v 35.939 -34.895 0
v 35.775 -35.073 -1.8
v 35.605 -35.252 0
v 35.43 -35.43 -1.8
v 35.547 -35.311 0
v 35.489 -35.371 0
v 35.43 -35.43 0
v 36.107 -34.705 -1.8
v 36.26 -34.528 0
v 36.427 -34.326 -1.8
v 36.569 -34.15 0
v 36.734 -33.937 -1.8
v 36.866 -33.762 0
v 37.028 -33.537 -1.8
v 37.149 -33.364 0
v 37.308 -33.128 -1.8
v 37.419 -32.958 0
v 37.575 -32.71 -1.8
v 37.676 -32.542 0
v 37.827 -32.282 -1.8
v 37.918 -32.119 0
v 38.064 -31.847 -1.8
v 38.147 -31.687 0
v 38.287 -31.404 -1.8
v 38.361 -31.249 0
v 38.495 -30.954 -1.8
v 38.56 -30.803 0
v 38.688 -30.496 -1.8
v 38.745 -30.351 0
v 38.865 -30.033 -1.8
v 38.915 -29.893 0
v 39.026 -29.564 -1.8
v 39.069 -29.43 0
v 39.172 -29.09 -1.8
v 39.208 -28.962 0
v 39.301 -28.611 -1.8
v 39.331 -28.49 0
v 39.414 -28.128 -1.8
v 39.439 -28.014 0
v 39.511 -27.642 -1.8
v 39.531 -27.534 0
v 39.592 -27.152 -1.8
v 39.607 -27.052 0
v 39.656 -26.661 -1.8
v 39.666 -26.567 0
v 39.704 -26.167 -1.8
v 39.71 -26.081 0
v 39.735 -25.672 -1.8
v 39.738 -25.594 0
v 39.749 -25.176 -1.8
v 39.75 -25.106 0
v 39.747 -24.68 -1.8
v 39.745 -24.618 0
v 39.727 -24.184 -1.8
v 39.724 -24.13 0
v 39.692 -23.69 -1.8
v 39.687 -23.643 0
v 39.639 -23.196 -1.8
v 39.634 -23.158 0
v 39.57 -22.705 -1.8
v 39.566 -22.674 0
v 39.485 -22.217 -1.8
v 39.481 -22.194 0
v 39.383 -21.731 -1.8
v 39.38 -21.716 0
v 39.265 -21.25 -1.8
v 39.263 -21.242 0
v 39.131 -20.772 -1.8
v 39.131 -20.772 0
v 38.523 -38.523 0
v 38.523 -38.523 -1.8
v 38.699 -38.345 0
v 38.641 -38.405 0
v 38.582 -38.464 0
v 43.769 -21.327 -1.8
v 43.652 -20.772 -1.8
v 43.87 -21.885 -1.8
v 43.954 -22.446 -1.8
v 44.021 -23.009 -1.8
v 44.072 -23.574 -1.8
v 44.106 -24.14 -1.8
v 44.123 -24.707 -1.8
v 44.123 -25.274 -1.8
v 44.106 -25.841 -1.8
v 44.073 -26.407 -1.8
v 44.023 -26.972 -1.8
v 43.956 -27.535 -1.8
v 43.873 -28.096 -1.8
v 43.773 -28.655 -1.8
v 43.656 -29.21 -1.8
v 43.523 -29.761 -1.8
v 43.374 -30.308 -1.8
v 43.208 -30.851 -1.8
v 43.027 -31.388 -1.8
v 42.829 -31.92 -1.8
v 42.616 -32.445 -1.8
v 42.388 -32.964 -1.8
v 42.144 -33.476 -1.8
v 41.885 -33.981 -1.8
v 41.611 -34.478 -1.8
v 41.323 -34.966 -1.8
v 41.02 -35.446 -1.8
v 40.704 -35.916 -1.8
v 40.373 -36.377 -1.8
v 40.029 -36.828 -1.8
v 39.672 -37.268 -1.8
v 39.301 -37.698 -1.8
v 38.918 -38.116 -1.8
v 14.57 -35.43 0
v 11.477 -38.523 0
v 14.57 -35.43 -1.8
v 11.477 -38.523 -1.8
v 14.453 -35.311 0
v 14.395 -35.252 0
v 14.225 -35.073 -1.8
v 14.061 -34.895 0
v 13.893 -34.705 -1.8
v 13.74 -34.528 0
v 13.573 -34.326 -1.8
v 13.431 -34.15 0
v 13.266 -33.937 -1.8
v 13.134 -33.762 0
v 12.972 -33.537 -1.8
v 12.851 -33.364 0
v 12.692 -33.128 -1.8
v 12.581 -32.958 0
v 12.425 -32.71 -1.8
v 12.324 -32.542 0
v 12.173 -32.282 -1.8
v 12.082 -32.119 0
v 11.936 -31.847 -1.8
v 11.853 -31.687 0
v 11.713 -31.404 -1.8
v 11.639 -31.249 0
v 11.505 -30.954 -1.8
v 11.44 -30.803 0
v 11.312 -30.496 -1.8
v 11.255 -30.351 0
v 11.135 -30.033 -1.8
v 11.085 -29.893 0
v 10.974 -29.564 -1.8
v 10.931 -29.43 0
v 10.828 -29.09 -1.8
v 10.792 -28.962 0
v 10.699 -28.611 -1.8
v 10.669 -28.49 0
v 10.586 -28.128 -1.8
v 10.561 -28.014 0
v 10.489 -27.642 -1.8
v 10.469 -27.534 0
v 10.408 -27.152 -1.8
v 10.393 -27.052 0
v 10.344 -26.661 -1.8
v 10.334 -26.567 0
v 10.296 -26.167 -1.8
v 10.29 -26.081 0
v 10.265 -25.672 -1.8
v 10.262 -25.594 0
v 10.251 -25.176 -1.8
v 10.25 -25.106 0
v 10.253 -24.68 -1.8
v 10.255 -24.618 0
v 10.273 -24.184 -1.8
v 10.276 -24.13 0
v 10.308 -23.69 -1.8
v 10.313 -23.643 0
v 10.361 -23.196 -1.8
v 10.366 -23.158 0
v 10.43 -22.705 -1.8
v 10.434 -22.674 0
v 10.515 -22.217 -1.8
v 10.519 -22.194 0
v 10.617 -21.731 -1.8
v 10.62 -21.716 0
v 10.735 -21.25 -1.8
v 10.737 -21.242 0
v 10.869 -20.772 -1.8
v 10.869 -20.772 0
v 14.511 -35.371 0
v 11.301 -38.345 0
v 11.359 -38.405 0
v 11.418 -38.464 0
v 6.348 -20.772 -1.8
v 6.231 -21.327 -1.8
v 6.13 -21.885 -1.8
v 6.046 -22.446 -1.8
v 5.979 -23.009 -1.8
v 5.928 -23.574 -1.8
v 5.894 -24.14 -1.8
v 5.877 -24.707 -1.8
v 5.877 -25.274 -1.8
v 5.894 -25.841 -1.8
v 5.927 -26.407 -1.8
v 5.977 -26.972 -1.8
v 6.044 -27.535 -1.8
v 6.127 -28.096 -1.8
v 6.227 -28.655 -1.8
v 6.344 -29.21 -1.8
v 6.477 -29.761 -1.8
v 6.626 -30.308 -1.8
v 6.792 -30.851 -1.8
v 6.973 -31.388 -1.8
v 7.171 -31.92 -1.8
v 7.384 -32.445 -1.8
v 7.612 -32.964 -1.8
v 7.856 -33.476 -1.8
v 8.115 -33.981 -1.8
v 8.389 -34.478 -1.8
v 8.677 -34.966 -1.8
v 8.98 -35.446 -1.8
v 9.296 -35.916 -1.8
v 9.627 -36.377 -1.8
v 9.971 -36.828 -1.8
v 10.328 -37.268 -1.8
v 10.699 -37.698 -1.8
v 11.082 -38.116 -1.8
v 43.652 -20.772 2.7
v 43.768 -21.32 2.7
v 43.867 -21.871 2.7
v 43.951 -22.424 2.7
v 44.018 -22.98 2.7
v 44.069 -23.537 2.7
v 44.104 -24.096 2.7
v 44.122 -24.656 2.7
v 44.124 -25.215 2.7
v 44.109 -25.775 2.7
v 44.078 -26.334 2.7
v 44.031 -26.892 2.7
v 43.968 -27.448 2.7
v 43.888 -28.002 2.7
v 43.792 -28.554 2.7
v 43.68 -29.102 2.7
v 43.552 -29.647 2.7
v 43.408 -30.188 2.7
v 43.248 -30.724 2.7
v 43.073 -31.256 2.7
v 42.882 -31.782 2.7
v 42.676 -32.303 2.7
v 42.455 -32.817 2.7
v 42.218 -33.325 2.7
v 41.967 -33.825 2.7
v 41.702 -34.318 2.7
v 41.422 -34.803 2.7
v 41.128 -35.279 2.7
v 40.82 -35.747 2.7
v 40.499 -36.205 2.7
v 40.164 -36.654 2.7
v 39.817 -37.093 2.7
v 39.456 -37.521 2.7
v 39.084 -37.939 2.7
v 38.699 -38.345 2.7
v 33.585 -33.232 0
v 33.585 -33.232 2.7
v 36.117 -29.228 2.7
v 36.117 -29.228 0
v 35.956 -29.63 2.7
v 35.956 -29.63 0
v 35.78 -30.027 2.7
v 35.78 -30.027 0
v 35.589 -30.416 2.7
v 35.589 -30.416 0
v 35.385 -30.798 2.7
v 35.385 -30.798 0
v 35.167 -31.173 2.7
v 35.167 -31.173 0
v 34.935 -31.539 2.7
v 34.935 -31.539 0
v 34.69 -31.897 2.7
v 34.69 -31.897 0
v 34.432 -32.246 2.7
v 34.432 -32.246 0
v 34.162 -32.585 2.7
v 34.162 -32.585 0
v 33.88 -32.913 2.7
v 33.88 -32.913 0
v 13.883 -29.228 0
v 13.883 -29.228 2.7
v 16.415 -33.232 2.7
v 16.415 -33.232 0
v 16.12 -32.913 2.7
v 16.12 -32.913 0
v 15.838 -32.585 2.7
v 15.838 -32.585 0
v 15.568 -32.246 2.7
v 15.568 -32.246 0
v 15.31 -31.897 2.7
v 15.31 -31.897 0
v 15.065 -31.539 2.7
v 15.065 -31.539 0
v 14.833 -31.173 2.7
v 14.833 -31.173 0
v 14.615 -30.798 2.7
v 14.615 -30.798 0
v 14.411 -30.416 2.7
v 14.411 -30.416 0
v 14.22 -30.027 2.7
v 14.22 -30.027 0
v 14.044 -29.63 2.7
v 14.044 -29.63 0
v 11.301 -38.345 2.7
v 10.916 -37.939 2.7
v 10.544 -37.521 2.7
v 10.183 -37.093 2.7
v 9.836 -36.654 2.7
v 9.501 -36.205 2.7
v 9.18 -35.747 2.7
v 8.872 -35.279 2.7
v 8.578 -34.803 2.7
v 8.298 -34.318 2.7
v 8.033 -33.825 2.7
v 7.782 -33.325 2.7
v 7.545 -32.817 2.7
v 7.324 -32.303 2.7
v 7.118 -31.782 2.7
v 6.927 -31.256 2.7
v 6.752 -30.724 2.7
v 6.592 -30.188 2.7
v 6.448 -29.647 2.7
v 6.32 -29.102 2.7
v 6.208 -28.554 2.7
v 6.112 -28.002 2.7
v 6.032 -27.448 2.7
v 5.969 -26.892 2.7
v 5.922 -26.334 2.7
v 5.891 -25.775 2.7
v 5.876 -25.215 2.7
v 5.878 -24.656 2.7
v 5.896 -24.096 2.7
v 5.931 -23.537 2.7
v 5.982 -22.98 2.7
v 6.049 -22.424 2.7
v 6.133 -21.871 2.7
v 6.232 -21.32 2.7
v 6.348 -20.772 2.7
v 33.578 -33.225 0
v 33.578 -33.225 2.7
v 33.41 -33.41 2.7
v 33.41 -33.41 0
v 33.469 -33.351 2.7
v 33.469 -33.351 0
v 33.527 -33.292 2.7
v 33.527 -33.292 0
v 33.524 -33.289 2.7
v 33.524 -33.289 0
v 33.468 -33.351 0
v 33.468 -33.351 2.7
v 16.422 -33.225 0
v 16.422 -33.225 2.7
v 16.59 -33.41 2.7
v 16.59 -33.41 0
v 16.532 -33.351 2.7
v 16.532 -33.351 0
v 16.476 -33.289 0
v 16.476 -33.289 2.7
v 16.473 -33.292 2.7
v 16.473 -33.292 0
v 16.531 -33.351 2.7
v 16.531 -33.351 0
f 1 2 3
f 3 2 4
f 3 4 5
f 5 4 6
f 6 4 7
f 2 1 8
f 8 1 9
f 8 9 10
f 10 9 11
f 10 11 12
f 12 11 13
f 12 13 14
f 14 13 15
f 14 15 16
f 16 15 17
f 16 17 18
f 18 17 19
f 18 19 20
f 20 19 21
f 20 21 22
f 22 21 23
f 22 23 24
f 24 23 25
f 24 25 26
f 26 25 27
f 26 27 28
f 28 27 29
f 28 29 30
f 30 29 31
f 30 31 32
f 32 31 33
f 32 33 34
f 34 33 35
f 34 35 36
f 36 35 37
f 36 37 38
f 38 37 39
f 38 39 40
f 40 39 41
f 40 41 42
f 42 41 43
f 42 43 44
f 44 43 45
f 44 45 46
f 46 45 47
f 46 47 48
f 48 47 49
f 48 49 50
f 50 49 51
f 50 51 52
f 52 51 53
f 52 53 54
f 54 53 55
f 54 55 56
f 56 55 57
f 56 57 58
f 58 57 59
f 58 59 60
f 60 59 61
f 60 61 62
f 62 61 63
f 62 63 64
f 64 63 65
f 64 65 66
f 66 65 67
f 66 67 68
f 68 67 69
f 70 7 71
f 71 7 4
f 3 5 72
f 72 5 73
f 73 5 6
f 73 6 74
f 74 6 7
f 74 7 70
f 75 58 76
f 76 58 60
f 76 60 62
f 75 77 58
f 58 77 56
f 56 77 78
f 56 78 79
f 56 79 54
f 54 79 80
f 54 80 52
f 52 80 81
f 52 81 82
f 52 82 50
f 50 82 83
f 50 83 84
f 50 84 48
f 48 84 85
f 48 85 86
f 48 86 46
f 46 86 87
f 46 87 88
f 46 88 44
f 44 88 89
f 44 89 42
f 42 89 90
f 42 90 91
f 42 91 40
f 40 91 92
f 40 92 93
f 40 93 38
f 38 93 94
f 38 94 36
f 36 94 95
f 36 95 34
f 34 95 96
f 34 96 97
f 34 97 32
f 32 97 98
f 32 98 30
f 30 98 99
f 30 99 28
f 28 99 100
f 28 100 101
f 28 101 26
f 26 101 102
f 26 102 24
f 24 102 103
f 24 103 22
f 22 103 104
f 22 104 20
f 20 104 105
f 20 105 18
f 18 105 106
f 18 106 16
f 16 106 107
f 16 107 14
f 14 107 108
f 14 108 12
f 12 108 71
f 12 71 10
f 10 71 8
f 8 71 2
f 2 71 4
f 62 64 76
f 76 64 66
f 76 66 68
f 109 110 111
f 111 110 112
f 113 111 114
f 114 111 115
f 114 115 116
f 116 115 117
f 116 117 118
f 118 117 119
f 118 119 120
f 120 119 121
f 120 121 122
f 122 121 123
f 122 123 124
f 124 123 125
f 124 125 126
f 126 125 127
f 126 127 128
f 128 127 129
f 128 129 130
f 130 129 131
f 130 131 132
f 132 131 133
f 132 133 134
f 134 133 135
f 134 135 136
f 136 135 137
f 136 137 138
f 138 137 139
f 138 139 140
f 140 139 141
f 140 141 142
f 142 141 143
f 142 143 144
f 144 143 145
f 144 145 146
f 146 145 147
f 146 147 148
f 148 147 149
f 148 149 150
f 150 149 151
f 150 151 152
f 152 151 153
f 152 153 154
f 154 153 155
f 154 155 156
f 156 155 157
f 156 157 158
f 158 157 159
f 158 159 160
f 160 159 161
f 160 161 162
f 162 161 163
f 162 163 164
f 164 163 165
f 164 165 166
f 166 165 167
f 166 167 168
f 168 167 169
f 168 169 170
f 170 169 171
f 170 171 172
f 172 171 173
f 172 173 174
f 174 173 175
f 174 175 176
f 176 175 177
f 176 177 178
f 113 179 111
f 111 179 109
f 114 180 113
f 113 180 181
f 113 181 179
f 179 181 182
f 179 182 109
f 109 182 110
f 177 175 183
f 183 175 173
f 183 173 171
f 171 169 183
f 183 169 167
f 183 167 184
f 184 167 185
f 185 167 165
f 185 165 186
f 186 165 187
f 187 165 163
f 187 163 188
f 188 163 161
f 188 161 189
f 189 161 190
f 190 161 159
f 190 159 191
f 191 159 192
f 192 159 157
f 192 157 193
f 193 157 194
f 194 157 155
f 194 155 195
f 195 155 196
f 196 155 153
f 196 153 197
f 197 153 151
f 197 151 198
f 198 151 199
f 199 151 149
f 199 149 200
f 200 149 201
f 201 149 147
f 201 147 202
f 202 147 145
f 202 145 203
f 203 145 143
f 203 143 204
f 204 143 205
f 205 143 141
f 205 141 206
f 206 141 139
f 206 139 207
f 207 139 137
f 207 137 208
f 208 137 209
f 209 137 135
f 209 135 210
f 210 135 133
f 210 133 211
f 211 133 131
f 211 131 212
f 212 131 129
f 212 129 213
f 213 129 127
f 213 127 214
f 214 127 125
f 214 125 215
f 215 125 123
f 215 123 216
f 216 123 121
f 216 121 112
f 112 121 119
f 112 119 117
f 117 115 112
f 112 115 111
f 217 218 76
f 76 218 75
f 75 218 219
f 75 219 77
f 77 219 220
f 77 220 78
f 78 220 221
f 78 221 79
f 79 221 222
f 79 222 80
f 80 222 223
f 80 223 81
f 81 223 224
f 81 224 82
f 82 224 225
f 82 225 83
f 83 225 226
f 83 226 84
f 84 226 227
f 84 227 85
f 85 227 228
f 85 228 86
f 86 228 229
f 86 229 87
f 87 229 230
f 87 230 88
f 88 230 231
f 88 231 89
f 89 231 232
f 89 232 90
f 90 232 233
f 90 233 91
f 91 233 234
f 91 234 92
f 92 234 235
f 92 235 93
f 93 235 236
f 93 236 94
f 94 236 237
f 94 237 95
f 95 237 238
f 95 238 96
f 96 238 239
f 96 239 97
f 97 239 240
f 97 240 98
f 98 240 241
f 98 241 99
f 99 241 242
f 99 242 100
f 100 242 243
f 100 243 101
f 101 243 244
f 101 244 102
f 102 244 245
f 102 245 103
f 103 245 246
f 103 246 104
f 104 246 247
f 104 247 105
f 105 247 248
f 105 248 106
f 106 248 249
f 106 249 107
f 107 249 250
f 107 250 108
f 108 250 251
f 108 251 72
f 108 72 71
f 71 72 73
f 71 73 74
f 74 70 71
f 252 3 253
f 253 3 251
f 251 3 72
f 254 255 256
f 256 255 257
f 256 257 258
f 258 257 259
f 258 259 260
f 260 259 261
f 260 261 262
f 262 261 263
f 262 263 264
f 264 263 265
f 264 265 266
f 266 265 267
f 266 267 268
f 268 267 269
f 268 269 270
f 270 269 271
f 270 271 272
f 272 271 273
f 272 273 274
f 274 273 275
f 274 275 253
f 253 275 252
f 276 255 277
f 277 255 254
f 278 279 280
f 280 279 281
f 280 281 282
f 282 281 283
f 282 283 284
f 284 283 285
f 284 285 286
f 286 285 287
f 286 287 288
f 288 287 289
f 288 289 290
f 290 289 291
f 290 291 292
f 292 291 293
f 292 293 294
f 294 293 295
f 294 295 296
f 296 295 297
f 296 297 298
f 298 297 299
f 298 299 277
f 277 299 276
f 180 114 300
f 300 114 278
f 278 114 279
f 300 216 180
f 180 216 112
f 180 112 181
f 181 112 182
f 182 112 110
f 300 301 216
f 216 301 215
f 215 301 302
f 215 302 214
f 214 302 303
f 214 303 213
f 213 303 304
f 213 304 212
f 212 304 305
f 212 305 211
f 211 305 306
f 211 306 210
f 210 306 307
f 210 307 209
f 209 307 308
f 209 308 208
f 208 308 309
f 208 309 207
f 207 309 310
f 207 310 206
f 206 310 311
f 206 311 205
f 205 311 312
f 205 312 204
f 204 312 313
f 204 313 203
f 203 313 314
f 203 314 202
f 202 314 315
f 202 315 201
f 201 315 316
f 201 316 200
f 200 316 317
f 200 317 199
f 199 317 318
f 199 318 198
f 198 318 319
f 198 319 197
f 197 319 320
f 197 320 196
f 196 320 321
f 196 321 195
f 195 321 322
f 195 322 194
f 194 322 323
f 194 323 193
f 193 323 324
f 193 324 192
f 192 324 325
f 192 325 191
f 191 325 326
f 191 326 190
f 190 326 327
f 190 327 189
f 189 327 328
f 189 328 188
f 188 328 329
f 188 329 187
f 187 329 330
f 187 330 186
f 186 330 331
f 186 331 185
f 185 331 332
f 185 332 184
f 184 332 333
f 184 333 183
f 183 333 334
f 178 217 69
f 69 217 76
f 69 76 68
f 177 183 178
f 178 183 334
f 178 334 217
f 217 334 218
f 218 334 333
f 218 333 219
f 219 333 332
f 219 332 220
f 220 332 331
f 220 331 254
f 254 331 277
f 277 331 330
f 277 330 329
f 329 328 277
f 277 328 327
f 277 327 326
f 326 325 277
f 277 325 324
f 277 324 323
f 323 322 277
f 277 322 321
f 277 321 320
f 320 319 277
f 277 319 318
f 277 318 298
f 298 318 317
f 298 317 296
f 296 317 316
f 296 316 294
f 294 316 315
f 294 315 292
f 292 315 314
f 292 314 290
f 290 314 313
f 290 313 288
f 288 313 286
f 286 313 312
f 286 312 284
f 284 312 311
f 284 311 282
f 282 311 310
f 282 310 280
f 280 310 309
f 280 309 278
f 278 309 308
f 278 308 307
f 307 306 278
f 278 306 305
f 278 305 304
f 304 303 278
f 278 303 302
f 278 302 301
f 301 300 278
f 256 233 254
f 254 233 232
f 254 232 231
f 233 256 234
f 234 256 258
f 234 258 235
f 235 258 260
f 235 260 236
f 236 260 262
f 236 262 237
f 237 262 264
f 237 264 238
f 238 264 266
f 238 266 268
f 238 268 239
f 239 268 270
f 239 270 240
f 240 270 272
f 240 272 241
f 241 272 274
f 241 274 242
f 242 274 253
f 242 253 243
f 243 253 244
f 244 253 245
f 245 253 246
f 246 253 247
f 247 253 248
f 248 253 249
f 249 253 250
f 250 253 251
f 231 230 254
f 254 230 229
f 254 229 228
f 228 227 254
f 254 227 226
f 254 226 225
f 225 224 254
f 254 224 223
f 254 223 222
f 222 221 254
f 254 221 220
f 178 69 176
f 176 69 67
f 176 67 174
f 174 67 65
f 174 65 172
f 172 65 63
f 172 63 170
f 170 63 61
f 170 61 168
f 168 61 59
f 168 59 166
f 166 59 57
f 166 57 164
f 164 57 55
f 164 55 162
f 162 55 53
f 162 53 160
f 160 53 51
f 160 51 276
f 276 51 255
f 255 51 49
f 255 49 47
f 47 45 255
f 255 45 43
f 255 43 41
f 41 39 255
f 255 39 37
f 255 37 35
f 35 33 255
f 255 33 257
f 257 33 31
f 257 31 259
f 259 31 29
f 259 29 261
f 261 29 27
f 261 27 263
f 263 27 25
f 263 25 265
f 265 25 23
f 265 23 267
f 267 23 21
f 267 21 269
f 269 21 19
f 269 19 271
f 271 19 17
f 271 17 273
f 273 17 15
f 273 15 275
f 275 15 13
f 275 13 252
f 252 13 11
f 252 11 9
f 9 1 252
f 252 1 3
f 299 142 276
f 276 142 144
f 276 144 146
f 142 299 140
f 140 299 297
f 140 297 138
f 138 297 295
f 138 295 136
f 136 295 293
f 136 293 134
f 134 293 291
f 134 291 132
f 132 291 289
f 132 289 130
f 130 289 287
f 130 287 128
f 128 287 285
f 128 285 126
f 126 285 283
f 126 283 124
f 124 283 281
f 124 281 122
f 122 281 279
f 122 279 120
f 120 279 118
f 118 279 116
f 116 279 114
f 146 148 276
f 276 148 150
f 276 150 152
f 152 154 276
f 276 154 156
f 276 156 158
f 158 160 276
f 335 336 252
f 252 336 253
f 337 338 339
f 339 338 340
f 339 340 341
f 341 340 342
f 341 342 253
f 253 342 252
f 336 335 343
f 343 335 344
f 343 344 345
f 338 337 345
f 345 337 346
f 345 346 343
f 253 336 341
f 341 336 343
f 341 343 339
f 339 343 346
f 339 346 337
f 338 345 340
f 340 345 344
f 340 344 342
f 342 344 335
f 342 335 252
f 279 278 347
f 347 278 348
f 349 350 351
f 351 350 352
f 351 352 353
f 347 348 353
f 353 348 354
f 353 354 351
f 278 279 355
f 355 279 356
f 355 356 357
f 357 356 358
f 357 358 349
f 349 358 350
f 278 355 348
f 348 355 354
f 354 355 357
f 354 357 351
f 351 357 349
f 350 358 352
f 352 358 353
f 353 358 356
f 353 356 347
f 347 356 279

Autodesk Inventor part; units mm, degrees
ref_plane "YZ Plane" through (0, 0, 0) normal (1, 0, 0) x (0, 1, 0)
ref_plane "XZ Plane" through (0, 0, 0) normal (0, 1, 0) x (-1, 0, 0)
ref_plane "XY Plane" through (0, 0, 0) normal (0, 0, 1) x (1, 0, 0)
sketch "Sketch1" plane through (0, 0, 0) normal (0, 0, 1) x (1, 0, 0)
  line L0 (0, 0) -> (50, 0)
  line L1 (50, 0) -> (50, -50)
  line L2 (50, -50) -> (0, -50)
  line L3 (0, -50) -> (0, 0)
  line L4 (2, -2) -> (48, -2)
  line L5 (48, -2) -> (48, -48)
  line L6 (48, -48) -> (2, -48)
  line L7 (2, -48) -> (2, -2)
  line L8 (2, -2) -> (48, -48) construction
  line L9 (48, -2) -> (2, -48) construction
  circle A0 centre (25, -25) radius 19.125
  circle A1 centre (25, -25) radius 14.75
  circle A2 centre (25, -25) radius 4.175
  circle A3 centre (31.678, -18.322) radius 2.45
  circle A4 centre (25, -15.5559) radius 2.45
  circle A5 centre (18.322, -18.322) radius 2.45
  circle A6 centre (15.5559, -25) radius 2.45
  circle A7 centre (18.322, -31.678) radius 2.45
  circle A8 centre (25, -34.4441) radius 2.45
  circle A9 centre (31.678, -31.678) radius 2.45
  circle A10 centre (34.4441, -25) radius 2.45
  line L10 (50, -25) -> (-10.9328, -25) construction
  line L11 (47.5, -2.5) -> (47.5, -17.5)
  line L12 (47.5, -2.5) -> (32.5, -2.5)
  line L13 (32.5, -2.5) -> (47.5, -17.5)
  line L14 (2.5, -17.5) -> (17.5, -2.5)
  line L15 (2.5, -2.5) -> (17.5, -2.5)
  line L16 (2.5, -2.5) -> (2.5, -17.5)
  line L17 (17.5, -47.5) -> (2.5, -32.5)
  line L18 (2.5, -47.5) -> (2.5, -32.5)
  line L19 (2.5, -47.5) -> (17.5, -47.5)
  line L20 (47.5, -32.5) -> (32.5, -47.5)
  line L21 (47.5, -47.5) -> (32.5, -47.5)
  line L22 (47.5, -47.5) -> (47.5, -32.5)
  line L23 (33.4104, -33.4104) -> (35.4298, -35.4298)
  line L24 (16.5896, -16.5896) -> (14.5702, -14.5702)
  line L25 (18.322, -20.772) -> (31.678, -20.772)
  line L26 (39.131, -20.772) -> (43.6518, -20.772)
  line L27 (39.131, -20.772) -> (31.678, -20.772)
  line L28 (18.322, -20.772) -> (10.869, -20.772)
  arc A11 (16.5896, -33.4104) -> (33.4104, -16.5896) centre (25, -25) ccw
  line L29 (10.869, -20.772) -> (6.3482, -20.772)
  arc A12 (16.5896, -16.5896) -> (16.5896, -33.4104) centre (25, -25) ccw
  line L30 (11.4766, -38.5234) -> (14.5702, -35.4298)
  line L31 (16.5896, -33.4104) -> (14.5702, -35.4298)
  line L32 (35.4298, -35.4298) -> (38.5234, -38.5234)
  line L33 (18.322, -31.678) -> (16.4147, -33.2318)
  line L34 (16.4147, -33.2318) -> (11.301, -38.3455)
  line L35 (31.678, -31.678) -> (33.5853, -33.2318)
  line L36 (33.5853, -33.2318) -> (38.699, -38.3455)
  line L37 (31.678, -29.228) -> (43.6518, -29.228)
  line L38 (31.678, -29.228) -> (6.3482, -29.228)
  point P0 (13.8827, -29.228)
  point P1 (36.1173, -29.228)
  point P2 (33.5775, -33.2254)
  point P3 (16.4225, -33.2254)
  dimension "d8" = 38.25
  dimension "d4" = 50
  dimension "d5" = 50
  dimension "d6" = 46
  dimension "d7" = 46
  dimension "d9" = 29.5
  dimension "d10" = 8.35
  dimension "d11" = 4.9
  dimension "d12" = 360
  dimension "d13" = 2
  dimension "d14" = 2
  dimension "d15" = 15
  dimension "d16" = 15
  dimension "d17" = 2.5
  dimension "d18" = 2.5
  dimension "d19" = 360
  dimension "d24" = 0.25
  dimension "d25" = 0.25
extrude "Extrusion1" add sketch "Sketch1" along normal blind 2.7 contours A0 L37 A1 L26 | A0 L36 A1 L37 | L29 A1 L38 A0 | A1 L37 A11 L27 | A1 L36 A11 L37 | L38 A1 L34 A0 | L28 A12 L38 A1 | A6 | A10 | A11 L37 L38 A12 L28 L25 L27 | L38 A12 L34 A1 | A11 A9 L35 | L33 A7 A12 | A2
extrude "Extrusion2" add sketch "Sketch1" against normal blind 1.8 contours A0 L37 A1 L26 | A0 L36 A1 L37 | L29 A1 L38 A0 | A0 L32 A1 L36 | L38 A1 L34 A0 | L34 A1 L30 A0
sketch "Sketch2" plane through (0, 0, 2.7) normal (0, 0, 1) x (1, 0, 0)
  line L0 (11.3606, -22.3794) -> (41.3606, -22.3794)
  line L1 (41.3606, -22.3794) -> (41.3606, -32.6794)
  line L2 (41.3606, -32.6794) -> (11.3606, -32.6794)
  line L3 (11.3606, -32.6794) -> (11.3606, -22.3794)
  point P0 (0, 0)
  dimension "d26" = 30
  dimension "d27" = 10.3
properties part number "BaseCoilBrace"
